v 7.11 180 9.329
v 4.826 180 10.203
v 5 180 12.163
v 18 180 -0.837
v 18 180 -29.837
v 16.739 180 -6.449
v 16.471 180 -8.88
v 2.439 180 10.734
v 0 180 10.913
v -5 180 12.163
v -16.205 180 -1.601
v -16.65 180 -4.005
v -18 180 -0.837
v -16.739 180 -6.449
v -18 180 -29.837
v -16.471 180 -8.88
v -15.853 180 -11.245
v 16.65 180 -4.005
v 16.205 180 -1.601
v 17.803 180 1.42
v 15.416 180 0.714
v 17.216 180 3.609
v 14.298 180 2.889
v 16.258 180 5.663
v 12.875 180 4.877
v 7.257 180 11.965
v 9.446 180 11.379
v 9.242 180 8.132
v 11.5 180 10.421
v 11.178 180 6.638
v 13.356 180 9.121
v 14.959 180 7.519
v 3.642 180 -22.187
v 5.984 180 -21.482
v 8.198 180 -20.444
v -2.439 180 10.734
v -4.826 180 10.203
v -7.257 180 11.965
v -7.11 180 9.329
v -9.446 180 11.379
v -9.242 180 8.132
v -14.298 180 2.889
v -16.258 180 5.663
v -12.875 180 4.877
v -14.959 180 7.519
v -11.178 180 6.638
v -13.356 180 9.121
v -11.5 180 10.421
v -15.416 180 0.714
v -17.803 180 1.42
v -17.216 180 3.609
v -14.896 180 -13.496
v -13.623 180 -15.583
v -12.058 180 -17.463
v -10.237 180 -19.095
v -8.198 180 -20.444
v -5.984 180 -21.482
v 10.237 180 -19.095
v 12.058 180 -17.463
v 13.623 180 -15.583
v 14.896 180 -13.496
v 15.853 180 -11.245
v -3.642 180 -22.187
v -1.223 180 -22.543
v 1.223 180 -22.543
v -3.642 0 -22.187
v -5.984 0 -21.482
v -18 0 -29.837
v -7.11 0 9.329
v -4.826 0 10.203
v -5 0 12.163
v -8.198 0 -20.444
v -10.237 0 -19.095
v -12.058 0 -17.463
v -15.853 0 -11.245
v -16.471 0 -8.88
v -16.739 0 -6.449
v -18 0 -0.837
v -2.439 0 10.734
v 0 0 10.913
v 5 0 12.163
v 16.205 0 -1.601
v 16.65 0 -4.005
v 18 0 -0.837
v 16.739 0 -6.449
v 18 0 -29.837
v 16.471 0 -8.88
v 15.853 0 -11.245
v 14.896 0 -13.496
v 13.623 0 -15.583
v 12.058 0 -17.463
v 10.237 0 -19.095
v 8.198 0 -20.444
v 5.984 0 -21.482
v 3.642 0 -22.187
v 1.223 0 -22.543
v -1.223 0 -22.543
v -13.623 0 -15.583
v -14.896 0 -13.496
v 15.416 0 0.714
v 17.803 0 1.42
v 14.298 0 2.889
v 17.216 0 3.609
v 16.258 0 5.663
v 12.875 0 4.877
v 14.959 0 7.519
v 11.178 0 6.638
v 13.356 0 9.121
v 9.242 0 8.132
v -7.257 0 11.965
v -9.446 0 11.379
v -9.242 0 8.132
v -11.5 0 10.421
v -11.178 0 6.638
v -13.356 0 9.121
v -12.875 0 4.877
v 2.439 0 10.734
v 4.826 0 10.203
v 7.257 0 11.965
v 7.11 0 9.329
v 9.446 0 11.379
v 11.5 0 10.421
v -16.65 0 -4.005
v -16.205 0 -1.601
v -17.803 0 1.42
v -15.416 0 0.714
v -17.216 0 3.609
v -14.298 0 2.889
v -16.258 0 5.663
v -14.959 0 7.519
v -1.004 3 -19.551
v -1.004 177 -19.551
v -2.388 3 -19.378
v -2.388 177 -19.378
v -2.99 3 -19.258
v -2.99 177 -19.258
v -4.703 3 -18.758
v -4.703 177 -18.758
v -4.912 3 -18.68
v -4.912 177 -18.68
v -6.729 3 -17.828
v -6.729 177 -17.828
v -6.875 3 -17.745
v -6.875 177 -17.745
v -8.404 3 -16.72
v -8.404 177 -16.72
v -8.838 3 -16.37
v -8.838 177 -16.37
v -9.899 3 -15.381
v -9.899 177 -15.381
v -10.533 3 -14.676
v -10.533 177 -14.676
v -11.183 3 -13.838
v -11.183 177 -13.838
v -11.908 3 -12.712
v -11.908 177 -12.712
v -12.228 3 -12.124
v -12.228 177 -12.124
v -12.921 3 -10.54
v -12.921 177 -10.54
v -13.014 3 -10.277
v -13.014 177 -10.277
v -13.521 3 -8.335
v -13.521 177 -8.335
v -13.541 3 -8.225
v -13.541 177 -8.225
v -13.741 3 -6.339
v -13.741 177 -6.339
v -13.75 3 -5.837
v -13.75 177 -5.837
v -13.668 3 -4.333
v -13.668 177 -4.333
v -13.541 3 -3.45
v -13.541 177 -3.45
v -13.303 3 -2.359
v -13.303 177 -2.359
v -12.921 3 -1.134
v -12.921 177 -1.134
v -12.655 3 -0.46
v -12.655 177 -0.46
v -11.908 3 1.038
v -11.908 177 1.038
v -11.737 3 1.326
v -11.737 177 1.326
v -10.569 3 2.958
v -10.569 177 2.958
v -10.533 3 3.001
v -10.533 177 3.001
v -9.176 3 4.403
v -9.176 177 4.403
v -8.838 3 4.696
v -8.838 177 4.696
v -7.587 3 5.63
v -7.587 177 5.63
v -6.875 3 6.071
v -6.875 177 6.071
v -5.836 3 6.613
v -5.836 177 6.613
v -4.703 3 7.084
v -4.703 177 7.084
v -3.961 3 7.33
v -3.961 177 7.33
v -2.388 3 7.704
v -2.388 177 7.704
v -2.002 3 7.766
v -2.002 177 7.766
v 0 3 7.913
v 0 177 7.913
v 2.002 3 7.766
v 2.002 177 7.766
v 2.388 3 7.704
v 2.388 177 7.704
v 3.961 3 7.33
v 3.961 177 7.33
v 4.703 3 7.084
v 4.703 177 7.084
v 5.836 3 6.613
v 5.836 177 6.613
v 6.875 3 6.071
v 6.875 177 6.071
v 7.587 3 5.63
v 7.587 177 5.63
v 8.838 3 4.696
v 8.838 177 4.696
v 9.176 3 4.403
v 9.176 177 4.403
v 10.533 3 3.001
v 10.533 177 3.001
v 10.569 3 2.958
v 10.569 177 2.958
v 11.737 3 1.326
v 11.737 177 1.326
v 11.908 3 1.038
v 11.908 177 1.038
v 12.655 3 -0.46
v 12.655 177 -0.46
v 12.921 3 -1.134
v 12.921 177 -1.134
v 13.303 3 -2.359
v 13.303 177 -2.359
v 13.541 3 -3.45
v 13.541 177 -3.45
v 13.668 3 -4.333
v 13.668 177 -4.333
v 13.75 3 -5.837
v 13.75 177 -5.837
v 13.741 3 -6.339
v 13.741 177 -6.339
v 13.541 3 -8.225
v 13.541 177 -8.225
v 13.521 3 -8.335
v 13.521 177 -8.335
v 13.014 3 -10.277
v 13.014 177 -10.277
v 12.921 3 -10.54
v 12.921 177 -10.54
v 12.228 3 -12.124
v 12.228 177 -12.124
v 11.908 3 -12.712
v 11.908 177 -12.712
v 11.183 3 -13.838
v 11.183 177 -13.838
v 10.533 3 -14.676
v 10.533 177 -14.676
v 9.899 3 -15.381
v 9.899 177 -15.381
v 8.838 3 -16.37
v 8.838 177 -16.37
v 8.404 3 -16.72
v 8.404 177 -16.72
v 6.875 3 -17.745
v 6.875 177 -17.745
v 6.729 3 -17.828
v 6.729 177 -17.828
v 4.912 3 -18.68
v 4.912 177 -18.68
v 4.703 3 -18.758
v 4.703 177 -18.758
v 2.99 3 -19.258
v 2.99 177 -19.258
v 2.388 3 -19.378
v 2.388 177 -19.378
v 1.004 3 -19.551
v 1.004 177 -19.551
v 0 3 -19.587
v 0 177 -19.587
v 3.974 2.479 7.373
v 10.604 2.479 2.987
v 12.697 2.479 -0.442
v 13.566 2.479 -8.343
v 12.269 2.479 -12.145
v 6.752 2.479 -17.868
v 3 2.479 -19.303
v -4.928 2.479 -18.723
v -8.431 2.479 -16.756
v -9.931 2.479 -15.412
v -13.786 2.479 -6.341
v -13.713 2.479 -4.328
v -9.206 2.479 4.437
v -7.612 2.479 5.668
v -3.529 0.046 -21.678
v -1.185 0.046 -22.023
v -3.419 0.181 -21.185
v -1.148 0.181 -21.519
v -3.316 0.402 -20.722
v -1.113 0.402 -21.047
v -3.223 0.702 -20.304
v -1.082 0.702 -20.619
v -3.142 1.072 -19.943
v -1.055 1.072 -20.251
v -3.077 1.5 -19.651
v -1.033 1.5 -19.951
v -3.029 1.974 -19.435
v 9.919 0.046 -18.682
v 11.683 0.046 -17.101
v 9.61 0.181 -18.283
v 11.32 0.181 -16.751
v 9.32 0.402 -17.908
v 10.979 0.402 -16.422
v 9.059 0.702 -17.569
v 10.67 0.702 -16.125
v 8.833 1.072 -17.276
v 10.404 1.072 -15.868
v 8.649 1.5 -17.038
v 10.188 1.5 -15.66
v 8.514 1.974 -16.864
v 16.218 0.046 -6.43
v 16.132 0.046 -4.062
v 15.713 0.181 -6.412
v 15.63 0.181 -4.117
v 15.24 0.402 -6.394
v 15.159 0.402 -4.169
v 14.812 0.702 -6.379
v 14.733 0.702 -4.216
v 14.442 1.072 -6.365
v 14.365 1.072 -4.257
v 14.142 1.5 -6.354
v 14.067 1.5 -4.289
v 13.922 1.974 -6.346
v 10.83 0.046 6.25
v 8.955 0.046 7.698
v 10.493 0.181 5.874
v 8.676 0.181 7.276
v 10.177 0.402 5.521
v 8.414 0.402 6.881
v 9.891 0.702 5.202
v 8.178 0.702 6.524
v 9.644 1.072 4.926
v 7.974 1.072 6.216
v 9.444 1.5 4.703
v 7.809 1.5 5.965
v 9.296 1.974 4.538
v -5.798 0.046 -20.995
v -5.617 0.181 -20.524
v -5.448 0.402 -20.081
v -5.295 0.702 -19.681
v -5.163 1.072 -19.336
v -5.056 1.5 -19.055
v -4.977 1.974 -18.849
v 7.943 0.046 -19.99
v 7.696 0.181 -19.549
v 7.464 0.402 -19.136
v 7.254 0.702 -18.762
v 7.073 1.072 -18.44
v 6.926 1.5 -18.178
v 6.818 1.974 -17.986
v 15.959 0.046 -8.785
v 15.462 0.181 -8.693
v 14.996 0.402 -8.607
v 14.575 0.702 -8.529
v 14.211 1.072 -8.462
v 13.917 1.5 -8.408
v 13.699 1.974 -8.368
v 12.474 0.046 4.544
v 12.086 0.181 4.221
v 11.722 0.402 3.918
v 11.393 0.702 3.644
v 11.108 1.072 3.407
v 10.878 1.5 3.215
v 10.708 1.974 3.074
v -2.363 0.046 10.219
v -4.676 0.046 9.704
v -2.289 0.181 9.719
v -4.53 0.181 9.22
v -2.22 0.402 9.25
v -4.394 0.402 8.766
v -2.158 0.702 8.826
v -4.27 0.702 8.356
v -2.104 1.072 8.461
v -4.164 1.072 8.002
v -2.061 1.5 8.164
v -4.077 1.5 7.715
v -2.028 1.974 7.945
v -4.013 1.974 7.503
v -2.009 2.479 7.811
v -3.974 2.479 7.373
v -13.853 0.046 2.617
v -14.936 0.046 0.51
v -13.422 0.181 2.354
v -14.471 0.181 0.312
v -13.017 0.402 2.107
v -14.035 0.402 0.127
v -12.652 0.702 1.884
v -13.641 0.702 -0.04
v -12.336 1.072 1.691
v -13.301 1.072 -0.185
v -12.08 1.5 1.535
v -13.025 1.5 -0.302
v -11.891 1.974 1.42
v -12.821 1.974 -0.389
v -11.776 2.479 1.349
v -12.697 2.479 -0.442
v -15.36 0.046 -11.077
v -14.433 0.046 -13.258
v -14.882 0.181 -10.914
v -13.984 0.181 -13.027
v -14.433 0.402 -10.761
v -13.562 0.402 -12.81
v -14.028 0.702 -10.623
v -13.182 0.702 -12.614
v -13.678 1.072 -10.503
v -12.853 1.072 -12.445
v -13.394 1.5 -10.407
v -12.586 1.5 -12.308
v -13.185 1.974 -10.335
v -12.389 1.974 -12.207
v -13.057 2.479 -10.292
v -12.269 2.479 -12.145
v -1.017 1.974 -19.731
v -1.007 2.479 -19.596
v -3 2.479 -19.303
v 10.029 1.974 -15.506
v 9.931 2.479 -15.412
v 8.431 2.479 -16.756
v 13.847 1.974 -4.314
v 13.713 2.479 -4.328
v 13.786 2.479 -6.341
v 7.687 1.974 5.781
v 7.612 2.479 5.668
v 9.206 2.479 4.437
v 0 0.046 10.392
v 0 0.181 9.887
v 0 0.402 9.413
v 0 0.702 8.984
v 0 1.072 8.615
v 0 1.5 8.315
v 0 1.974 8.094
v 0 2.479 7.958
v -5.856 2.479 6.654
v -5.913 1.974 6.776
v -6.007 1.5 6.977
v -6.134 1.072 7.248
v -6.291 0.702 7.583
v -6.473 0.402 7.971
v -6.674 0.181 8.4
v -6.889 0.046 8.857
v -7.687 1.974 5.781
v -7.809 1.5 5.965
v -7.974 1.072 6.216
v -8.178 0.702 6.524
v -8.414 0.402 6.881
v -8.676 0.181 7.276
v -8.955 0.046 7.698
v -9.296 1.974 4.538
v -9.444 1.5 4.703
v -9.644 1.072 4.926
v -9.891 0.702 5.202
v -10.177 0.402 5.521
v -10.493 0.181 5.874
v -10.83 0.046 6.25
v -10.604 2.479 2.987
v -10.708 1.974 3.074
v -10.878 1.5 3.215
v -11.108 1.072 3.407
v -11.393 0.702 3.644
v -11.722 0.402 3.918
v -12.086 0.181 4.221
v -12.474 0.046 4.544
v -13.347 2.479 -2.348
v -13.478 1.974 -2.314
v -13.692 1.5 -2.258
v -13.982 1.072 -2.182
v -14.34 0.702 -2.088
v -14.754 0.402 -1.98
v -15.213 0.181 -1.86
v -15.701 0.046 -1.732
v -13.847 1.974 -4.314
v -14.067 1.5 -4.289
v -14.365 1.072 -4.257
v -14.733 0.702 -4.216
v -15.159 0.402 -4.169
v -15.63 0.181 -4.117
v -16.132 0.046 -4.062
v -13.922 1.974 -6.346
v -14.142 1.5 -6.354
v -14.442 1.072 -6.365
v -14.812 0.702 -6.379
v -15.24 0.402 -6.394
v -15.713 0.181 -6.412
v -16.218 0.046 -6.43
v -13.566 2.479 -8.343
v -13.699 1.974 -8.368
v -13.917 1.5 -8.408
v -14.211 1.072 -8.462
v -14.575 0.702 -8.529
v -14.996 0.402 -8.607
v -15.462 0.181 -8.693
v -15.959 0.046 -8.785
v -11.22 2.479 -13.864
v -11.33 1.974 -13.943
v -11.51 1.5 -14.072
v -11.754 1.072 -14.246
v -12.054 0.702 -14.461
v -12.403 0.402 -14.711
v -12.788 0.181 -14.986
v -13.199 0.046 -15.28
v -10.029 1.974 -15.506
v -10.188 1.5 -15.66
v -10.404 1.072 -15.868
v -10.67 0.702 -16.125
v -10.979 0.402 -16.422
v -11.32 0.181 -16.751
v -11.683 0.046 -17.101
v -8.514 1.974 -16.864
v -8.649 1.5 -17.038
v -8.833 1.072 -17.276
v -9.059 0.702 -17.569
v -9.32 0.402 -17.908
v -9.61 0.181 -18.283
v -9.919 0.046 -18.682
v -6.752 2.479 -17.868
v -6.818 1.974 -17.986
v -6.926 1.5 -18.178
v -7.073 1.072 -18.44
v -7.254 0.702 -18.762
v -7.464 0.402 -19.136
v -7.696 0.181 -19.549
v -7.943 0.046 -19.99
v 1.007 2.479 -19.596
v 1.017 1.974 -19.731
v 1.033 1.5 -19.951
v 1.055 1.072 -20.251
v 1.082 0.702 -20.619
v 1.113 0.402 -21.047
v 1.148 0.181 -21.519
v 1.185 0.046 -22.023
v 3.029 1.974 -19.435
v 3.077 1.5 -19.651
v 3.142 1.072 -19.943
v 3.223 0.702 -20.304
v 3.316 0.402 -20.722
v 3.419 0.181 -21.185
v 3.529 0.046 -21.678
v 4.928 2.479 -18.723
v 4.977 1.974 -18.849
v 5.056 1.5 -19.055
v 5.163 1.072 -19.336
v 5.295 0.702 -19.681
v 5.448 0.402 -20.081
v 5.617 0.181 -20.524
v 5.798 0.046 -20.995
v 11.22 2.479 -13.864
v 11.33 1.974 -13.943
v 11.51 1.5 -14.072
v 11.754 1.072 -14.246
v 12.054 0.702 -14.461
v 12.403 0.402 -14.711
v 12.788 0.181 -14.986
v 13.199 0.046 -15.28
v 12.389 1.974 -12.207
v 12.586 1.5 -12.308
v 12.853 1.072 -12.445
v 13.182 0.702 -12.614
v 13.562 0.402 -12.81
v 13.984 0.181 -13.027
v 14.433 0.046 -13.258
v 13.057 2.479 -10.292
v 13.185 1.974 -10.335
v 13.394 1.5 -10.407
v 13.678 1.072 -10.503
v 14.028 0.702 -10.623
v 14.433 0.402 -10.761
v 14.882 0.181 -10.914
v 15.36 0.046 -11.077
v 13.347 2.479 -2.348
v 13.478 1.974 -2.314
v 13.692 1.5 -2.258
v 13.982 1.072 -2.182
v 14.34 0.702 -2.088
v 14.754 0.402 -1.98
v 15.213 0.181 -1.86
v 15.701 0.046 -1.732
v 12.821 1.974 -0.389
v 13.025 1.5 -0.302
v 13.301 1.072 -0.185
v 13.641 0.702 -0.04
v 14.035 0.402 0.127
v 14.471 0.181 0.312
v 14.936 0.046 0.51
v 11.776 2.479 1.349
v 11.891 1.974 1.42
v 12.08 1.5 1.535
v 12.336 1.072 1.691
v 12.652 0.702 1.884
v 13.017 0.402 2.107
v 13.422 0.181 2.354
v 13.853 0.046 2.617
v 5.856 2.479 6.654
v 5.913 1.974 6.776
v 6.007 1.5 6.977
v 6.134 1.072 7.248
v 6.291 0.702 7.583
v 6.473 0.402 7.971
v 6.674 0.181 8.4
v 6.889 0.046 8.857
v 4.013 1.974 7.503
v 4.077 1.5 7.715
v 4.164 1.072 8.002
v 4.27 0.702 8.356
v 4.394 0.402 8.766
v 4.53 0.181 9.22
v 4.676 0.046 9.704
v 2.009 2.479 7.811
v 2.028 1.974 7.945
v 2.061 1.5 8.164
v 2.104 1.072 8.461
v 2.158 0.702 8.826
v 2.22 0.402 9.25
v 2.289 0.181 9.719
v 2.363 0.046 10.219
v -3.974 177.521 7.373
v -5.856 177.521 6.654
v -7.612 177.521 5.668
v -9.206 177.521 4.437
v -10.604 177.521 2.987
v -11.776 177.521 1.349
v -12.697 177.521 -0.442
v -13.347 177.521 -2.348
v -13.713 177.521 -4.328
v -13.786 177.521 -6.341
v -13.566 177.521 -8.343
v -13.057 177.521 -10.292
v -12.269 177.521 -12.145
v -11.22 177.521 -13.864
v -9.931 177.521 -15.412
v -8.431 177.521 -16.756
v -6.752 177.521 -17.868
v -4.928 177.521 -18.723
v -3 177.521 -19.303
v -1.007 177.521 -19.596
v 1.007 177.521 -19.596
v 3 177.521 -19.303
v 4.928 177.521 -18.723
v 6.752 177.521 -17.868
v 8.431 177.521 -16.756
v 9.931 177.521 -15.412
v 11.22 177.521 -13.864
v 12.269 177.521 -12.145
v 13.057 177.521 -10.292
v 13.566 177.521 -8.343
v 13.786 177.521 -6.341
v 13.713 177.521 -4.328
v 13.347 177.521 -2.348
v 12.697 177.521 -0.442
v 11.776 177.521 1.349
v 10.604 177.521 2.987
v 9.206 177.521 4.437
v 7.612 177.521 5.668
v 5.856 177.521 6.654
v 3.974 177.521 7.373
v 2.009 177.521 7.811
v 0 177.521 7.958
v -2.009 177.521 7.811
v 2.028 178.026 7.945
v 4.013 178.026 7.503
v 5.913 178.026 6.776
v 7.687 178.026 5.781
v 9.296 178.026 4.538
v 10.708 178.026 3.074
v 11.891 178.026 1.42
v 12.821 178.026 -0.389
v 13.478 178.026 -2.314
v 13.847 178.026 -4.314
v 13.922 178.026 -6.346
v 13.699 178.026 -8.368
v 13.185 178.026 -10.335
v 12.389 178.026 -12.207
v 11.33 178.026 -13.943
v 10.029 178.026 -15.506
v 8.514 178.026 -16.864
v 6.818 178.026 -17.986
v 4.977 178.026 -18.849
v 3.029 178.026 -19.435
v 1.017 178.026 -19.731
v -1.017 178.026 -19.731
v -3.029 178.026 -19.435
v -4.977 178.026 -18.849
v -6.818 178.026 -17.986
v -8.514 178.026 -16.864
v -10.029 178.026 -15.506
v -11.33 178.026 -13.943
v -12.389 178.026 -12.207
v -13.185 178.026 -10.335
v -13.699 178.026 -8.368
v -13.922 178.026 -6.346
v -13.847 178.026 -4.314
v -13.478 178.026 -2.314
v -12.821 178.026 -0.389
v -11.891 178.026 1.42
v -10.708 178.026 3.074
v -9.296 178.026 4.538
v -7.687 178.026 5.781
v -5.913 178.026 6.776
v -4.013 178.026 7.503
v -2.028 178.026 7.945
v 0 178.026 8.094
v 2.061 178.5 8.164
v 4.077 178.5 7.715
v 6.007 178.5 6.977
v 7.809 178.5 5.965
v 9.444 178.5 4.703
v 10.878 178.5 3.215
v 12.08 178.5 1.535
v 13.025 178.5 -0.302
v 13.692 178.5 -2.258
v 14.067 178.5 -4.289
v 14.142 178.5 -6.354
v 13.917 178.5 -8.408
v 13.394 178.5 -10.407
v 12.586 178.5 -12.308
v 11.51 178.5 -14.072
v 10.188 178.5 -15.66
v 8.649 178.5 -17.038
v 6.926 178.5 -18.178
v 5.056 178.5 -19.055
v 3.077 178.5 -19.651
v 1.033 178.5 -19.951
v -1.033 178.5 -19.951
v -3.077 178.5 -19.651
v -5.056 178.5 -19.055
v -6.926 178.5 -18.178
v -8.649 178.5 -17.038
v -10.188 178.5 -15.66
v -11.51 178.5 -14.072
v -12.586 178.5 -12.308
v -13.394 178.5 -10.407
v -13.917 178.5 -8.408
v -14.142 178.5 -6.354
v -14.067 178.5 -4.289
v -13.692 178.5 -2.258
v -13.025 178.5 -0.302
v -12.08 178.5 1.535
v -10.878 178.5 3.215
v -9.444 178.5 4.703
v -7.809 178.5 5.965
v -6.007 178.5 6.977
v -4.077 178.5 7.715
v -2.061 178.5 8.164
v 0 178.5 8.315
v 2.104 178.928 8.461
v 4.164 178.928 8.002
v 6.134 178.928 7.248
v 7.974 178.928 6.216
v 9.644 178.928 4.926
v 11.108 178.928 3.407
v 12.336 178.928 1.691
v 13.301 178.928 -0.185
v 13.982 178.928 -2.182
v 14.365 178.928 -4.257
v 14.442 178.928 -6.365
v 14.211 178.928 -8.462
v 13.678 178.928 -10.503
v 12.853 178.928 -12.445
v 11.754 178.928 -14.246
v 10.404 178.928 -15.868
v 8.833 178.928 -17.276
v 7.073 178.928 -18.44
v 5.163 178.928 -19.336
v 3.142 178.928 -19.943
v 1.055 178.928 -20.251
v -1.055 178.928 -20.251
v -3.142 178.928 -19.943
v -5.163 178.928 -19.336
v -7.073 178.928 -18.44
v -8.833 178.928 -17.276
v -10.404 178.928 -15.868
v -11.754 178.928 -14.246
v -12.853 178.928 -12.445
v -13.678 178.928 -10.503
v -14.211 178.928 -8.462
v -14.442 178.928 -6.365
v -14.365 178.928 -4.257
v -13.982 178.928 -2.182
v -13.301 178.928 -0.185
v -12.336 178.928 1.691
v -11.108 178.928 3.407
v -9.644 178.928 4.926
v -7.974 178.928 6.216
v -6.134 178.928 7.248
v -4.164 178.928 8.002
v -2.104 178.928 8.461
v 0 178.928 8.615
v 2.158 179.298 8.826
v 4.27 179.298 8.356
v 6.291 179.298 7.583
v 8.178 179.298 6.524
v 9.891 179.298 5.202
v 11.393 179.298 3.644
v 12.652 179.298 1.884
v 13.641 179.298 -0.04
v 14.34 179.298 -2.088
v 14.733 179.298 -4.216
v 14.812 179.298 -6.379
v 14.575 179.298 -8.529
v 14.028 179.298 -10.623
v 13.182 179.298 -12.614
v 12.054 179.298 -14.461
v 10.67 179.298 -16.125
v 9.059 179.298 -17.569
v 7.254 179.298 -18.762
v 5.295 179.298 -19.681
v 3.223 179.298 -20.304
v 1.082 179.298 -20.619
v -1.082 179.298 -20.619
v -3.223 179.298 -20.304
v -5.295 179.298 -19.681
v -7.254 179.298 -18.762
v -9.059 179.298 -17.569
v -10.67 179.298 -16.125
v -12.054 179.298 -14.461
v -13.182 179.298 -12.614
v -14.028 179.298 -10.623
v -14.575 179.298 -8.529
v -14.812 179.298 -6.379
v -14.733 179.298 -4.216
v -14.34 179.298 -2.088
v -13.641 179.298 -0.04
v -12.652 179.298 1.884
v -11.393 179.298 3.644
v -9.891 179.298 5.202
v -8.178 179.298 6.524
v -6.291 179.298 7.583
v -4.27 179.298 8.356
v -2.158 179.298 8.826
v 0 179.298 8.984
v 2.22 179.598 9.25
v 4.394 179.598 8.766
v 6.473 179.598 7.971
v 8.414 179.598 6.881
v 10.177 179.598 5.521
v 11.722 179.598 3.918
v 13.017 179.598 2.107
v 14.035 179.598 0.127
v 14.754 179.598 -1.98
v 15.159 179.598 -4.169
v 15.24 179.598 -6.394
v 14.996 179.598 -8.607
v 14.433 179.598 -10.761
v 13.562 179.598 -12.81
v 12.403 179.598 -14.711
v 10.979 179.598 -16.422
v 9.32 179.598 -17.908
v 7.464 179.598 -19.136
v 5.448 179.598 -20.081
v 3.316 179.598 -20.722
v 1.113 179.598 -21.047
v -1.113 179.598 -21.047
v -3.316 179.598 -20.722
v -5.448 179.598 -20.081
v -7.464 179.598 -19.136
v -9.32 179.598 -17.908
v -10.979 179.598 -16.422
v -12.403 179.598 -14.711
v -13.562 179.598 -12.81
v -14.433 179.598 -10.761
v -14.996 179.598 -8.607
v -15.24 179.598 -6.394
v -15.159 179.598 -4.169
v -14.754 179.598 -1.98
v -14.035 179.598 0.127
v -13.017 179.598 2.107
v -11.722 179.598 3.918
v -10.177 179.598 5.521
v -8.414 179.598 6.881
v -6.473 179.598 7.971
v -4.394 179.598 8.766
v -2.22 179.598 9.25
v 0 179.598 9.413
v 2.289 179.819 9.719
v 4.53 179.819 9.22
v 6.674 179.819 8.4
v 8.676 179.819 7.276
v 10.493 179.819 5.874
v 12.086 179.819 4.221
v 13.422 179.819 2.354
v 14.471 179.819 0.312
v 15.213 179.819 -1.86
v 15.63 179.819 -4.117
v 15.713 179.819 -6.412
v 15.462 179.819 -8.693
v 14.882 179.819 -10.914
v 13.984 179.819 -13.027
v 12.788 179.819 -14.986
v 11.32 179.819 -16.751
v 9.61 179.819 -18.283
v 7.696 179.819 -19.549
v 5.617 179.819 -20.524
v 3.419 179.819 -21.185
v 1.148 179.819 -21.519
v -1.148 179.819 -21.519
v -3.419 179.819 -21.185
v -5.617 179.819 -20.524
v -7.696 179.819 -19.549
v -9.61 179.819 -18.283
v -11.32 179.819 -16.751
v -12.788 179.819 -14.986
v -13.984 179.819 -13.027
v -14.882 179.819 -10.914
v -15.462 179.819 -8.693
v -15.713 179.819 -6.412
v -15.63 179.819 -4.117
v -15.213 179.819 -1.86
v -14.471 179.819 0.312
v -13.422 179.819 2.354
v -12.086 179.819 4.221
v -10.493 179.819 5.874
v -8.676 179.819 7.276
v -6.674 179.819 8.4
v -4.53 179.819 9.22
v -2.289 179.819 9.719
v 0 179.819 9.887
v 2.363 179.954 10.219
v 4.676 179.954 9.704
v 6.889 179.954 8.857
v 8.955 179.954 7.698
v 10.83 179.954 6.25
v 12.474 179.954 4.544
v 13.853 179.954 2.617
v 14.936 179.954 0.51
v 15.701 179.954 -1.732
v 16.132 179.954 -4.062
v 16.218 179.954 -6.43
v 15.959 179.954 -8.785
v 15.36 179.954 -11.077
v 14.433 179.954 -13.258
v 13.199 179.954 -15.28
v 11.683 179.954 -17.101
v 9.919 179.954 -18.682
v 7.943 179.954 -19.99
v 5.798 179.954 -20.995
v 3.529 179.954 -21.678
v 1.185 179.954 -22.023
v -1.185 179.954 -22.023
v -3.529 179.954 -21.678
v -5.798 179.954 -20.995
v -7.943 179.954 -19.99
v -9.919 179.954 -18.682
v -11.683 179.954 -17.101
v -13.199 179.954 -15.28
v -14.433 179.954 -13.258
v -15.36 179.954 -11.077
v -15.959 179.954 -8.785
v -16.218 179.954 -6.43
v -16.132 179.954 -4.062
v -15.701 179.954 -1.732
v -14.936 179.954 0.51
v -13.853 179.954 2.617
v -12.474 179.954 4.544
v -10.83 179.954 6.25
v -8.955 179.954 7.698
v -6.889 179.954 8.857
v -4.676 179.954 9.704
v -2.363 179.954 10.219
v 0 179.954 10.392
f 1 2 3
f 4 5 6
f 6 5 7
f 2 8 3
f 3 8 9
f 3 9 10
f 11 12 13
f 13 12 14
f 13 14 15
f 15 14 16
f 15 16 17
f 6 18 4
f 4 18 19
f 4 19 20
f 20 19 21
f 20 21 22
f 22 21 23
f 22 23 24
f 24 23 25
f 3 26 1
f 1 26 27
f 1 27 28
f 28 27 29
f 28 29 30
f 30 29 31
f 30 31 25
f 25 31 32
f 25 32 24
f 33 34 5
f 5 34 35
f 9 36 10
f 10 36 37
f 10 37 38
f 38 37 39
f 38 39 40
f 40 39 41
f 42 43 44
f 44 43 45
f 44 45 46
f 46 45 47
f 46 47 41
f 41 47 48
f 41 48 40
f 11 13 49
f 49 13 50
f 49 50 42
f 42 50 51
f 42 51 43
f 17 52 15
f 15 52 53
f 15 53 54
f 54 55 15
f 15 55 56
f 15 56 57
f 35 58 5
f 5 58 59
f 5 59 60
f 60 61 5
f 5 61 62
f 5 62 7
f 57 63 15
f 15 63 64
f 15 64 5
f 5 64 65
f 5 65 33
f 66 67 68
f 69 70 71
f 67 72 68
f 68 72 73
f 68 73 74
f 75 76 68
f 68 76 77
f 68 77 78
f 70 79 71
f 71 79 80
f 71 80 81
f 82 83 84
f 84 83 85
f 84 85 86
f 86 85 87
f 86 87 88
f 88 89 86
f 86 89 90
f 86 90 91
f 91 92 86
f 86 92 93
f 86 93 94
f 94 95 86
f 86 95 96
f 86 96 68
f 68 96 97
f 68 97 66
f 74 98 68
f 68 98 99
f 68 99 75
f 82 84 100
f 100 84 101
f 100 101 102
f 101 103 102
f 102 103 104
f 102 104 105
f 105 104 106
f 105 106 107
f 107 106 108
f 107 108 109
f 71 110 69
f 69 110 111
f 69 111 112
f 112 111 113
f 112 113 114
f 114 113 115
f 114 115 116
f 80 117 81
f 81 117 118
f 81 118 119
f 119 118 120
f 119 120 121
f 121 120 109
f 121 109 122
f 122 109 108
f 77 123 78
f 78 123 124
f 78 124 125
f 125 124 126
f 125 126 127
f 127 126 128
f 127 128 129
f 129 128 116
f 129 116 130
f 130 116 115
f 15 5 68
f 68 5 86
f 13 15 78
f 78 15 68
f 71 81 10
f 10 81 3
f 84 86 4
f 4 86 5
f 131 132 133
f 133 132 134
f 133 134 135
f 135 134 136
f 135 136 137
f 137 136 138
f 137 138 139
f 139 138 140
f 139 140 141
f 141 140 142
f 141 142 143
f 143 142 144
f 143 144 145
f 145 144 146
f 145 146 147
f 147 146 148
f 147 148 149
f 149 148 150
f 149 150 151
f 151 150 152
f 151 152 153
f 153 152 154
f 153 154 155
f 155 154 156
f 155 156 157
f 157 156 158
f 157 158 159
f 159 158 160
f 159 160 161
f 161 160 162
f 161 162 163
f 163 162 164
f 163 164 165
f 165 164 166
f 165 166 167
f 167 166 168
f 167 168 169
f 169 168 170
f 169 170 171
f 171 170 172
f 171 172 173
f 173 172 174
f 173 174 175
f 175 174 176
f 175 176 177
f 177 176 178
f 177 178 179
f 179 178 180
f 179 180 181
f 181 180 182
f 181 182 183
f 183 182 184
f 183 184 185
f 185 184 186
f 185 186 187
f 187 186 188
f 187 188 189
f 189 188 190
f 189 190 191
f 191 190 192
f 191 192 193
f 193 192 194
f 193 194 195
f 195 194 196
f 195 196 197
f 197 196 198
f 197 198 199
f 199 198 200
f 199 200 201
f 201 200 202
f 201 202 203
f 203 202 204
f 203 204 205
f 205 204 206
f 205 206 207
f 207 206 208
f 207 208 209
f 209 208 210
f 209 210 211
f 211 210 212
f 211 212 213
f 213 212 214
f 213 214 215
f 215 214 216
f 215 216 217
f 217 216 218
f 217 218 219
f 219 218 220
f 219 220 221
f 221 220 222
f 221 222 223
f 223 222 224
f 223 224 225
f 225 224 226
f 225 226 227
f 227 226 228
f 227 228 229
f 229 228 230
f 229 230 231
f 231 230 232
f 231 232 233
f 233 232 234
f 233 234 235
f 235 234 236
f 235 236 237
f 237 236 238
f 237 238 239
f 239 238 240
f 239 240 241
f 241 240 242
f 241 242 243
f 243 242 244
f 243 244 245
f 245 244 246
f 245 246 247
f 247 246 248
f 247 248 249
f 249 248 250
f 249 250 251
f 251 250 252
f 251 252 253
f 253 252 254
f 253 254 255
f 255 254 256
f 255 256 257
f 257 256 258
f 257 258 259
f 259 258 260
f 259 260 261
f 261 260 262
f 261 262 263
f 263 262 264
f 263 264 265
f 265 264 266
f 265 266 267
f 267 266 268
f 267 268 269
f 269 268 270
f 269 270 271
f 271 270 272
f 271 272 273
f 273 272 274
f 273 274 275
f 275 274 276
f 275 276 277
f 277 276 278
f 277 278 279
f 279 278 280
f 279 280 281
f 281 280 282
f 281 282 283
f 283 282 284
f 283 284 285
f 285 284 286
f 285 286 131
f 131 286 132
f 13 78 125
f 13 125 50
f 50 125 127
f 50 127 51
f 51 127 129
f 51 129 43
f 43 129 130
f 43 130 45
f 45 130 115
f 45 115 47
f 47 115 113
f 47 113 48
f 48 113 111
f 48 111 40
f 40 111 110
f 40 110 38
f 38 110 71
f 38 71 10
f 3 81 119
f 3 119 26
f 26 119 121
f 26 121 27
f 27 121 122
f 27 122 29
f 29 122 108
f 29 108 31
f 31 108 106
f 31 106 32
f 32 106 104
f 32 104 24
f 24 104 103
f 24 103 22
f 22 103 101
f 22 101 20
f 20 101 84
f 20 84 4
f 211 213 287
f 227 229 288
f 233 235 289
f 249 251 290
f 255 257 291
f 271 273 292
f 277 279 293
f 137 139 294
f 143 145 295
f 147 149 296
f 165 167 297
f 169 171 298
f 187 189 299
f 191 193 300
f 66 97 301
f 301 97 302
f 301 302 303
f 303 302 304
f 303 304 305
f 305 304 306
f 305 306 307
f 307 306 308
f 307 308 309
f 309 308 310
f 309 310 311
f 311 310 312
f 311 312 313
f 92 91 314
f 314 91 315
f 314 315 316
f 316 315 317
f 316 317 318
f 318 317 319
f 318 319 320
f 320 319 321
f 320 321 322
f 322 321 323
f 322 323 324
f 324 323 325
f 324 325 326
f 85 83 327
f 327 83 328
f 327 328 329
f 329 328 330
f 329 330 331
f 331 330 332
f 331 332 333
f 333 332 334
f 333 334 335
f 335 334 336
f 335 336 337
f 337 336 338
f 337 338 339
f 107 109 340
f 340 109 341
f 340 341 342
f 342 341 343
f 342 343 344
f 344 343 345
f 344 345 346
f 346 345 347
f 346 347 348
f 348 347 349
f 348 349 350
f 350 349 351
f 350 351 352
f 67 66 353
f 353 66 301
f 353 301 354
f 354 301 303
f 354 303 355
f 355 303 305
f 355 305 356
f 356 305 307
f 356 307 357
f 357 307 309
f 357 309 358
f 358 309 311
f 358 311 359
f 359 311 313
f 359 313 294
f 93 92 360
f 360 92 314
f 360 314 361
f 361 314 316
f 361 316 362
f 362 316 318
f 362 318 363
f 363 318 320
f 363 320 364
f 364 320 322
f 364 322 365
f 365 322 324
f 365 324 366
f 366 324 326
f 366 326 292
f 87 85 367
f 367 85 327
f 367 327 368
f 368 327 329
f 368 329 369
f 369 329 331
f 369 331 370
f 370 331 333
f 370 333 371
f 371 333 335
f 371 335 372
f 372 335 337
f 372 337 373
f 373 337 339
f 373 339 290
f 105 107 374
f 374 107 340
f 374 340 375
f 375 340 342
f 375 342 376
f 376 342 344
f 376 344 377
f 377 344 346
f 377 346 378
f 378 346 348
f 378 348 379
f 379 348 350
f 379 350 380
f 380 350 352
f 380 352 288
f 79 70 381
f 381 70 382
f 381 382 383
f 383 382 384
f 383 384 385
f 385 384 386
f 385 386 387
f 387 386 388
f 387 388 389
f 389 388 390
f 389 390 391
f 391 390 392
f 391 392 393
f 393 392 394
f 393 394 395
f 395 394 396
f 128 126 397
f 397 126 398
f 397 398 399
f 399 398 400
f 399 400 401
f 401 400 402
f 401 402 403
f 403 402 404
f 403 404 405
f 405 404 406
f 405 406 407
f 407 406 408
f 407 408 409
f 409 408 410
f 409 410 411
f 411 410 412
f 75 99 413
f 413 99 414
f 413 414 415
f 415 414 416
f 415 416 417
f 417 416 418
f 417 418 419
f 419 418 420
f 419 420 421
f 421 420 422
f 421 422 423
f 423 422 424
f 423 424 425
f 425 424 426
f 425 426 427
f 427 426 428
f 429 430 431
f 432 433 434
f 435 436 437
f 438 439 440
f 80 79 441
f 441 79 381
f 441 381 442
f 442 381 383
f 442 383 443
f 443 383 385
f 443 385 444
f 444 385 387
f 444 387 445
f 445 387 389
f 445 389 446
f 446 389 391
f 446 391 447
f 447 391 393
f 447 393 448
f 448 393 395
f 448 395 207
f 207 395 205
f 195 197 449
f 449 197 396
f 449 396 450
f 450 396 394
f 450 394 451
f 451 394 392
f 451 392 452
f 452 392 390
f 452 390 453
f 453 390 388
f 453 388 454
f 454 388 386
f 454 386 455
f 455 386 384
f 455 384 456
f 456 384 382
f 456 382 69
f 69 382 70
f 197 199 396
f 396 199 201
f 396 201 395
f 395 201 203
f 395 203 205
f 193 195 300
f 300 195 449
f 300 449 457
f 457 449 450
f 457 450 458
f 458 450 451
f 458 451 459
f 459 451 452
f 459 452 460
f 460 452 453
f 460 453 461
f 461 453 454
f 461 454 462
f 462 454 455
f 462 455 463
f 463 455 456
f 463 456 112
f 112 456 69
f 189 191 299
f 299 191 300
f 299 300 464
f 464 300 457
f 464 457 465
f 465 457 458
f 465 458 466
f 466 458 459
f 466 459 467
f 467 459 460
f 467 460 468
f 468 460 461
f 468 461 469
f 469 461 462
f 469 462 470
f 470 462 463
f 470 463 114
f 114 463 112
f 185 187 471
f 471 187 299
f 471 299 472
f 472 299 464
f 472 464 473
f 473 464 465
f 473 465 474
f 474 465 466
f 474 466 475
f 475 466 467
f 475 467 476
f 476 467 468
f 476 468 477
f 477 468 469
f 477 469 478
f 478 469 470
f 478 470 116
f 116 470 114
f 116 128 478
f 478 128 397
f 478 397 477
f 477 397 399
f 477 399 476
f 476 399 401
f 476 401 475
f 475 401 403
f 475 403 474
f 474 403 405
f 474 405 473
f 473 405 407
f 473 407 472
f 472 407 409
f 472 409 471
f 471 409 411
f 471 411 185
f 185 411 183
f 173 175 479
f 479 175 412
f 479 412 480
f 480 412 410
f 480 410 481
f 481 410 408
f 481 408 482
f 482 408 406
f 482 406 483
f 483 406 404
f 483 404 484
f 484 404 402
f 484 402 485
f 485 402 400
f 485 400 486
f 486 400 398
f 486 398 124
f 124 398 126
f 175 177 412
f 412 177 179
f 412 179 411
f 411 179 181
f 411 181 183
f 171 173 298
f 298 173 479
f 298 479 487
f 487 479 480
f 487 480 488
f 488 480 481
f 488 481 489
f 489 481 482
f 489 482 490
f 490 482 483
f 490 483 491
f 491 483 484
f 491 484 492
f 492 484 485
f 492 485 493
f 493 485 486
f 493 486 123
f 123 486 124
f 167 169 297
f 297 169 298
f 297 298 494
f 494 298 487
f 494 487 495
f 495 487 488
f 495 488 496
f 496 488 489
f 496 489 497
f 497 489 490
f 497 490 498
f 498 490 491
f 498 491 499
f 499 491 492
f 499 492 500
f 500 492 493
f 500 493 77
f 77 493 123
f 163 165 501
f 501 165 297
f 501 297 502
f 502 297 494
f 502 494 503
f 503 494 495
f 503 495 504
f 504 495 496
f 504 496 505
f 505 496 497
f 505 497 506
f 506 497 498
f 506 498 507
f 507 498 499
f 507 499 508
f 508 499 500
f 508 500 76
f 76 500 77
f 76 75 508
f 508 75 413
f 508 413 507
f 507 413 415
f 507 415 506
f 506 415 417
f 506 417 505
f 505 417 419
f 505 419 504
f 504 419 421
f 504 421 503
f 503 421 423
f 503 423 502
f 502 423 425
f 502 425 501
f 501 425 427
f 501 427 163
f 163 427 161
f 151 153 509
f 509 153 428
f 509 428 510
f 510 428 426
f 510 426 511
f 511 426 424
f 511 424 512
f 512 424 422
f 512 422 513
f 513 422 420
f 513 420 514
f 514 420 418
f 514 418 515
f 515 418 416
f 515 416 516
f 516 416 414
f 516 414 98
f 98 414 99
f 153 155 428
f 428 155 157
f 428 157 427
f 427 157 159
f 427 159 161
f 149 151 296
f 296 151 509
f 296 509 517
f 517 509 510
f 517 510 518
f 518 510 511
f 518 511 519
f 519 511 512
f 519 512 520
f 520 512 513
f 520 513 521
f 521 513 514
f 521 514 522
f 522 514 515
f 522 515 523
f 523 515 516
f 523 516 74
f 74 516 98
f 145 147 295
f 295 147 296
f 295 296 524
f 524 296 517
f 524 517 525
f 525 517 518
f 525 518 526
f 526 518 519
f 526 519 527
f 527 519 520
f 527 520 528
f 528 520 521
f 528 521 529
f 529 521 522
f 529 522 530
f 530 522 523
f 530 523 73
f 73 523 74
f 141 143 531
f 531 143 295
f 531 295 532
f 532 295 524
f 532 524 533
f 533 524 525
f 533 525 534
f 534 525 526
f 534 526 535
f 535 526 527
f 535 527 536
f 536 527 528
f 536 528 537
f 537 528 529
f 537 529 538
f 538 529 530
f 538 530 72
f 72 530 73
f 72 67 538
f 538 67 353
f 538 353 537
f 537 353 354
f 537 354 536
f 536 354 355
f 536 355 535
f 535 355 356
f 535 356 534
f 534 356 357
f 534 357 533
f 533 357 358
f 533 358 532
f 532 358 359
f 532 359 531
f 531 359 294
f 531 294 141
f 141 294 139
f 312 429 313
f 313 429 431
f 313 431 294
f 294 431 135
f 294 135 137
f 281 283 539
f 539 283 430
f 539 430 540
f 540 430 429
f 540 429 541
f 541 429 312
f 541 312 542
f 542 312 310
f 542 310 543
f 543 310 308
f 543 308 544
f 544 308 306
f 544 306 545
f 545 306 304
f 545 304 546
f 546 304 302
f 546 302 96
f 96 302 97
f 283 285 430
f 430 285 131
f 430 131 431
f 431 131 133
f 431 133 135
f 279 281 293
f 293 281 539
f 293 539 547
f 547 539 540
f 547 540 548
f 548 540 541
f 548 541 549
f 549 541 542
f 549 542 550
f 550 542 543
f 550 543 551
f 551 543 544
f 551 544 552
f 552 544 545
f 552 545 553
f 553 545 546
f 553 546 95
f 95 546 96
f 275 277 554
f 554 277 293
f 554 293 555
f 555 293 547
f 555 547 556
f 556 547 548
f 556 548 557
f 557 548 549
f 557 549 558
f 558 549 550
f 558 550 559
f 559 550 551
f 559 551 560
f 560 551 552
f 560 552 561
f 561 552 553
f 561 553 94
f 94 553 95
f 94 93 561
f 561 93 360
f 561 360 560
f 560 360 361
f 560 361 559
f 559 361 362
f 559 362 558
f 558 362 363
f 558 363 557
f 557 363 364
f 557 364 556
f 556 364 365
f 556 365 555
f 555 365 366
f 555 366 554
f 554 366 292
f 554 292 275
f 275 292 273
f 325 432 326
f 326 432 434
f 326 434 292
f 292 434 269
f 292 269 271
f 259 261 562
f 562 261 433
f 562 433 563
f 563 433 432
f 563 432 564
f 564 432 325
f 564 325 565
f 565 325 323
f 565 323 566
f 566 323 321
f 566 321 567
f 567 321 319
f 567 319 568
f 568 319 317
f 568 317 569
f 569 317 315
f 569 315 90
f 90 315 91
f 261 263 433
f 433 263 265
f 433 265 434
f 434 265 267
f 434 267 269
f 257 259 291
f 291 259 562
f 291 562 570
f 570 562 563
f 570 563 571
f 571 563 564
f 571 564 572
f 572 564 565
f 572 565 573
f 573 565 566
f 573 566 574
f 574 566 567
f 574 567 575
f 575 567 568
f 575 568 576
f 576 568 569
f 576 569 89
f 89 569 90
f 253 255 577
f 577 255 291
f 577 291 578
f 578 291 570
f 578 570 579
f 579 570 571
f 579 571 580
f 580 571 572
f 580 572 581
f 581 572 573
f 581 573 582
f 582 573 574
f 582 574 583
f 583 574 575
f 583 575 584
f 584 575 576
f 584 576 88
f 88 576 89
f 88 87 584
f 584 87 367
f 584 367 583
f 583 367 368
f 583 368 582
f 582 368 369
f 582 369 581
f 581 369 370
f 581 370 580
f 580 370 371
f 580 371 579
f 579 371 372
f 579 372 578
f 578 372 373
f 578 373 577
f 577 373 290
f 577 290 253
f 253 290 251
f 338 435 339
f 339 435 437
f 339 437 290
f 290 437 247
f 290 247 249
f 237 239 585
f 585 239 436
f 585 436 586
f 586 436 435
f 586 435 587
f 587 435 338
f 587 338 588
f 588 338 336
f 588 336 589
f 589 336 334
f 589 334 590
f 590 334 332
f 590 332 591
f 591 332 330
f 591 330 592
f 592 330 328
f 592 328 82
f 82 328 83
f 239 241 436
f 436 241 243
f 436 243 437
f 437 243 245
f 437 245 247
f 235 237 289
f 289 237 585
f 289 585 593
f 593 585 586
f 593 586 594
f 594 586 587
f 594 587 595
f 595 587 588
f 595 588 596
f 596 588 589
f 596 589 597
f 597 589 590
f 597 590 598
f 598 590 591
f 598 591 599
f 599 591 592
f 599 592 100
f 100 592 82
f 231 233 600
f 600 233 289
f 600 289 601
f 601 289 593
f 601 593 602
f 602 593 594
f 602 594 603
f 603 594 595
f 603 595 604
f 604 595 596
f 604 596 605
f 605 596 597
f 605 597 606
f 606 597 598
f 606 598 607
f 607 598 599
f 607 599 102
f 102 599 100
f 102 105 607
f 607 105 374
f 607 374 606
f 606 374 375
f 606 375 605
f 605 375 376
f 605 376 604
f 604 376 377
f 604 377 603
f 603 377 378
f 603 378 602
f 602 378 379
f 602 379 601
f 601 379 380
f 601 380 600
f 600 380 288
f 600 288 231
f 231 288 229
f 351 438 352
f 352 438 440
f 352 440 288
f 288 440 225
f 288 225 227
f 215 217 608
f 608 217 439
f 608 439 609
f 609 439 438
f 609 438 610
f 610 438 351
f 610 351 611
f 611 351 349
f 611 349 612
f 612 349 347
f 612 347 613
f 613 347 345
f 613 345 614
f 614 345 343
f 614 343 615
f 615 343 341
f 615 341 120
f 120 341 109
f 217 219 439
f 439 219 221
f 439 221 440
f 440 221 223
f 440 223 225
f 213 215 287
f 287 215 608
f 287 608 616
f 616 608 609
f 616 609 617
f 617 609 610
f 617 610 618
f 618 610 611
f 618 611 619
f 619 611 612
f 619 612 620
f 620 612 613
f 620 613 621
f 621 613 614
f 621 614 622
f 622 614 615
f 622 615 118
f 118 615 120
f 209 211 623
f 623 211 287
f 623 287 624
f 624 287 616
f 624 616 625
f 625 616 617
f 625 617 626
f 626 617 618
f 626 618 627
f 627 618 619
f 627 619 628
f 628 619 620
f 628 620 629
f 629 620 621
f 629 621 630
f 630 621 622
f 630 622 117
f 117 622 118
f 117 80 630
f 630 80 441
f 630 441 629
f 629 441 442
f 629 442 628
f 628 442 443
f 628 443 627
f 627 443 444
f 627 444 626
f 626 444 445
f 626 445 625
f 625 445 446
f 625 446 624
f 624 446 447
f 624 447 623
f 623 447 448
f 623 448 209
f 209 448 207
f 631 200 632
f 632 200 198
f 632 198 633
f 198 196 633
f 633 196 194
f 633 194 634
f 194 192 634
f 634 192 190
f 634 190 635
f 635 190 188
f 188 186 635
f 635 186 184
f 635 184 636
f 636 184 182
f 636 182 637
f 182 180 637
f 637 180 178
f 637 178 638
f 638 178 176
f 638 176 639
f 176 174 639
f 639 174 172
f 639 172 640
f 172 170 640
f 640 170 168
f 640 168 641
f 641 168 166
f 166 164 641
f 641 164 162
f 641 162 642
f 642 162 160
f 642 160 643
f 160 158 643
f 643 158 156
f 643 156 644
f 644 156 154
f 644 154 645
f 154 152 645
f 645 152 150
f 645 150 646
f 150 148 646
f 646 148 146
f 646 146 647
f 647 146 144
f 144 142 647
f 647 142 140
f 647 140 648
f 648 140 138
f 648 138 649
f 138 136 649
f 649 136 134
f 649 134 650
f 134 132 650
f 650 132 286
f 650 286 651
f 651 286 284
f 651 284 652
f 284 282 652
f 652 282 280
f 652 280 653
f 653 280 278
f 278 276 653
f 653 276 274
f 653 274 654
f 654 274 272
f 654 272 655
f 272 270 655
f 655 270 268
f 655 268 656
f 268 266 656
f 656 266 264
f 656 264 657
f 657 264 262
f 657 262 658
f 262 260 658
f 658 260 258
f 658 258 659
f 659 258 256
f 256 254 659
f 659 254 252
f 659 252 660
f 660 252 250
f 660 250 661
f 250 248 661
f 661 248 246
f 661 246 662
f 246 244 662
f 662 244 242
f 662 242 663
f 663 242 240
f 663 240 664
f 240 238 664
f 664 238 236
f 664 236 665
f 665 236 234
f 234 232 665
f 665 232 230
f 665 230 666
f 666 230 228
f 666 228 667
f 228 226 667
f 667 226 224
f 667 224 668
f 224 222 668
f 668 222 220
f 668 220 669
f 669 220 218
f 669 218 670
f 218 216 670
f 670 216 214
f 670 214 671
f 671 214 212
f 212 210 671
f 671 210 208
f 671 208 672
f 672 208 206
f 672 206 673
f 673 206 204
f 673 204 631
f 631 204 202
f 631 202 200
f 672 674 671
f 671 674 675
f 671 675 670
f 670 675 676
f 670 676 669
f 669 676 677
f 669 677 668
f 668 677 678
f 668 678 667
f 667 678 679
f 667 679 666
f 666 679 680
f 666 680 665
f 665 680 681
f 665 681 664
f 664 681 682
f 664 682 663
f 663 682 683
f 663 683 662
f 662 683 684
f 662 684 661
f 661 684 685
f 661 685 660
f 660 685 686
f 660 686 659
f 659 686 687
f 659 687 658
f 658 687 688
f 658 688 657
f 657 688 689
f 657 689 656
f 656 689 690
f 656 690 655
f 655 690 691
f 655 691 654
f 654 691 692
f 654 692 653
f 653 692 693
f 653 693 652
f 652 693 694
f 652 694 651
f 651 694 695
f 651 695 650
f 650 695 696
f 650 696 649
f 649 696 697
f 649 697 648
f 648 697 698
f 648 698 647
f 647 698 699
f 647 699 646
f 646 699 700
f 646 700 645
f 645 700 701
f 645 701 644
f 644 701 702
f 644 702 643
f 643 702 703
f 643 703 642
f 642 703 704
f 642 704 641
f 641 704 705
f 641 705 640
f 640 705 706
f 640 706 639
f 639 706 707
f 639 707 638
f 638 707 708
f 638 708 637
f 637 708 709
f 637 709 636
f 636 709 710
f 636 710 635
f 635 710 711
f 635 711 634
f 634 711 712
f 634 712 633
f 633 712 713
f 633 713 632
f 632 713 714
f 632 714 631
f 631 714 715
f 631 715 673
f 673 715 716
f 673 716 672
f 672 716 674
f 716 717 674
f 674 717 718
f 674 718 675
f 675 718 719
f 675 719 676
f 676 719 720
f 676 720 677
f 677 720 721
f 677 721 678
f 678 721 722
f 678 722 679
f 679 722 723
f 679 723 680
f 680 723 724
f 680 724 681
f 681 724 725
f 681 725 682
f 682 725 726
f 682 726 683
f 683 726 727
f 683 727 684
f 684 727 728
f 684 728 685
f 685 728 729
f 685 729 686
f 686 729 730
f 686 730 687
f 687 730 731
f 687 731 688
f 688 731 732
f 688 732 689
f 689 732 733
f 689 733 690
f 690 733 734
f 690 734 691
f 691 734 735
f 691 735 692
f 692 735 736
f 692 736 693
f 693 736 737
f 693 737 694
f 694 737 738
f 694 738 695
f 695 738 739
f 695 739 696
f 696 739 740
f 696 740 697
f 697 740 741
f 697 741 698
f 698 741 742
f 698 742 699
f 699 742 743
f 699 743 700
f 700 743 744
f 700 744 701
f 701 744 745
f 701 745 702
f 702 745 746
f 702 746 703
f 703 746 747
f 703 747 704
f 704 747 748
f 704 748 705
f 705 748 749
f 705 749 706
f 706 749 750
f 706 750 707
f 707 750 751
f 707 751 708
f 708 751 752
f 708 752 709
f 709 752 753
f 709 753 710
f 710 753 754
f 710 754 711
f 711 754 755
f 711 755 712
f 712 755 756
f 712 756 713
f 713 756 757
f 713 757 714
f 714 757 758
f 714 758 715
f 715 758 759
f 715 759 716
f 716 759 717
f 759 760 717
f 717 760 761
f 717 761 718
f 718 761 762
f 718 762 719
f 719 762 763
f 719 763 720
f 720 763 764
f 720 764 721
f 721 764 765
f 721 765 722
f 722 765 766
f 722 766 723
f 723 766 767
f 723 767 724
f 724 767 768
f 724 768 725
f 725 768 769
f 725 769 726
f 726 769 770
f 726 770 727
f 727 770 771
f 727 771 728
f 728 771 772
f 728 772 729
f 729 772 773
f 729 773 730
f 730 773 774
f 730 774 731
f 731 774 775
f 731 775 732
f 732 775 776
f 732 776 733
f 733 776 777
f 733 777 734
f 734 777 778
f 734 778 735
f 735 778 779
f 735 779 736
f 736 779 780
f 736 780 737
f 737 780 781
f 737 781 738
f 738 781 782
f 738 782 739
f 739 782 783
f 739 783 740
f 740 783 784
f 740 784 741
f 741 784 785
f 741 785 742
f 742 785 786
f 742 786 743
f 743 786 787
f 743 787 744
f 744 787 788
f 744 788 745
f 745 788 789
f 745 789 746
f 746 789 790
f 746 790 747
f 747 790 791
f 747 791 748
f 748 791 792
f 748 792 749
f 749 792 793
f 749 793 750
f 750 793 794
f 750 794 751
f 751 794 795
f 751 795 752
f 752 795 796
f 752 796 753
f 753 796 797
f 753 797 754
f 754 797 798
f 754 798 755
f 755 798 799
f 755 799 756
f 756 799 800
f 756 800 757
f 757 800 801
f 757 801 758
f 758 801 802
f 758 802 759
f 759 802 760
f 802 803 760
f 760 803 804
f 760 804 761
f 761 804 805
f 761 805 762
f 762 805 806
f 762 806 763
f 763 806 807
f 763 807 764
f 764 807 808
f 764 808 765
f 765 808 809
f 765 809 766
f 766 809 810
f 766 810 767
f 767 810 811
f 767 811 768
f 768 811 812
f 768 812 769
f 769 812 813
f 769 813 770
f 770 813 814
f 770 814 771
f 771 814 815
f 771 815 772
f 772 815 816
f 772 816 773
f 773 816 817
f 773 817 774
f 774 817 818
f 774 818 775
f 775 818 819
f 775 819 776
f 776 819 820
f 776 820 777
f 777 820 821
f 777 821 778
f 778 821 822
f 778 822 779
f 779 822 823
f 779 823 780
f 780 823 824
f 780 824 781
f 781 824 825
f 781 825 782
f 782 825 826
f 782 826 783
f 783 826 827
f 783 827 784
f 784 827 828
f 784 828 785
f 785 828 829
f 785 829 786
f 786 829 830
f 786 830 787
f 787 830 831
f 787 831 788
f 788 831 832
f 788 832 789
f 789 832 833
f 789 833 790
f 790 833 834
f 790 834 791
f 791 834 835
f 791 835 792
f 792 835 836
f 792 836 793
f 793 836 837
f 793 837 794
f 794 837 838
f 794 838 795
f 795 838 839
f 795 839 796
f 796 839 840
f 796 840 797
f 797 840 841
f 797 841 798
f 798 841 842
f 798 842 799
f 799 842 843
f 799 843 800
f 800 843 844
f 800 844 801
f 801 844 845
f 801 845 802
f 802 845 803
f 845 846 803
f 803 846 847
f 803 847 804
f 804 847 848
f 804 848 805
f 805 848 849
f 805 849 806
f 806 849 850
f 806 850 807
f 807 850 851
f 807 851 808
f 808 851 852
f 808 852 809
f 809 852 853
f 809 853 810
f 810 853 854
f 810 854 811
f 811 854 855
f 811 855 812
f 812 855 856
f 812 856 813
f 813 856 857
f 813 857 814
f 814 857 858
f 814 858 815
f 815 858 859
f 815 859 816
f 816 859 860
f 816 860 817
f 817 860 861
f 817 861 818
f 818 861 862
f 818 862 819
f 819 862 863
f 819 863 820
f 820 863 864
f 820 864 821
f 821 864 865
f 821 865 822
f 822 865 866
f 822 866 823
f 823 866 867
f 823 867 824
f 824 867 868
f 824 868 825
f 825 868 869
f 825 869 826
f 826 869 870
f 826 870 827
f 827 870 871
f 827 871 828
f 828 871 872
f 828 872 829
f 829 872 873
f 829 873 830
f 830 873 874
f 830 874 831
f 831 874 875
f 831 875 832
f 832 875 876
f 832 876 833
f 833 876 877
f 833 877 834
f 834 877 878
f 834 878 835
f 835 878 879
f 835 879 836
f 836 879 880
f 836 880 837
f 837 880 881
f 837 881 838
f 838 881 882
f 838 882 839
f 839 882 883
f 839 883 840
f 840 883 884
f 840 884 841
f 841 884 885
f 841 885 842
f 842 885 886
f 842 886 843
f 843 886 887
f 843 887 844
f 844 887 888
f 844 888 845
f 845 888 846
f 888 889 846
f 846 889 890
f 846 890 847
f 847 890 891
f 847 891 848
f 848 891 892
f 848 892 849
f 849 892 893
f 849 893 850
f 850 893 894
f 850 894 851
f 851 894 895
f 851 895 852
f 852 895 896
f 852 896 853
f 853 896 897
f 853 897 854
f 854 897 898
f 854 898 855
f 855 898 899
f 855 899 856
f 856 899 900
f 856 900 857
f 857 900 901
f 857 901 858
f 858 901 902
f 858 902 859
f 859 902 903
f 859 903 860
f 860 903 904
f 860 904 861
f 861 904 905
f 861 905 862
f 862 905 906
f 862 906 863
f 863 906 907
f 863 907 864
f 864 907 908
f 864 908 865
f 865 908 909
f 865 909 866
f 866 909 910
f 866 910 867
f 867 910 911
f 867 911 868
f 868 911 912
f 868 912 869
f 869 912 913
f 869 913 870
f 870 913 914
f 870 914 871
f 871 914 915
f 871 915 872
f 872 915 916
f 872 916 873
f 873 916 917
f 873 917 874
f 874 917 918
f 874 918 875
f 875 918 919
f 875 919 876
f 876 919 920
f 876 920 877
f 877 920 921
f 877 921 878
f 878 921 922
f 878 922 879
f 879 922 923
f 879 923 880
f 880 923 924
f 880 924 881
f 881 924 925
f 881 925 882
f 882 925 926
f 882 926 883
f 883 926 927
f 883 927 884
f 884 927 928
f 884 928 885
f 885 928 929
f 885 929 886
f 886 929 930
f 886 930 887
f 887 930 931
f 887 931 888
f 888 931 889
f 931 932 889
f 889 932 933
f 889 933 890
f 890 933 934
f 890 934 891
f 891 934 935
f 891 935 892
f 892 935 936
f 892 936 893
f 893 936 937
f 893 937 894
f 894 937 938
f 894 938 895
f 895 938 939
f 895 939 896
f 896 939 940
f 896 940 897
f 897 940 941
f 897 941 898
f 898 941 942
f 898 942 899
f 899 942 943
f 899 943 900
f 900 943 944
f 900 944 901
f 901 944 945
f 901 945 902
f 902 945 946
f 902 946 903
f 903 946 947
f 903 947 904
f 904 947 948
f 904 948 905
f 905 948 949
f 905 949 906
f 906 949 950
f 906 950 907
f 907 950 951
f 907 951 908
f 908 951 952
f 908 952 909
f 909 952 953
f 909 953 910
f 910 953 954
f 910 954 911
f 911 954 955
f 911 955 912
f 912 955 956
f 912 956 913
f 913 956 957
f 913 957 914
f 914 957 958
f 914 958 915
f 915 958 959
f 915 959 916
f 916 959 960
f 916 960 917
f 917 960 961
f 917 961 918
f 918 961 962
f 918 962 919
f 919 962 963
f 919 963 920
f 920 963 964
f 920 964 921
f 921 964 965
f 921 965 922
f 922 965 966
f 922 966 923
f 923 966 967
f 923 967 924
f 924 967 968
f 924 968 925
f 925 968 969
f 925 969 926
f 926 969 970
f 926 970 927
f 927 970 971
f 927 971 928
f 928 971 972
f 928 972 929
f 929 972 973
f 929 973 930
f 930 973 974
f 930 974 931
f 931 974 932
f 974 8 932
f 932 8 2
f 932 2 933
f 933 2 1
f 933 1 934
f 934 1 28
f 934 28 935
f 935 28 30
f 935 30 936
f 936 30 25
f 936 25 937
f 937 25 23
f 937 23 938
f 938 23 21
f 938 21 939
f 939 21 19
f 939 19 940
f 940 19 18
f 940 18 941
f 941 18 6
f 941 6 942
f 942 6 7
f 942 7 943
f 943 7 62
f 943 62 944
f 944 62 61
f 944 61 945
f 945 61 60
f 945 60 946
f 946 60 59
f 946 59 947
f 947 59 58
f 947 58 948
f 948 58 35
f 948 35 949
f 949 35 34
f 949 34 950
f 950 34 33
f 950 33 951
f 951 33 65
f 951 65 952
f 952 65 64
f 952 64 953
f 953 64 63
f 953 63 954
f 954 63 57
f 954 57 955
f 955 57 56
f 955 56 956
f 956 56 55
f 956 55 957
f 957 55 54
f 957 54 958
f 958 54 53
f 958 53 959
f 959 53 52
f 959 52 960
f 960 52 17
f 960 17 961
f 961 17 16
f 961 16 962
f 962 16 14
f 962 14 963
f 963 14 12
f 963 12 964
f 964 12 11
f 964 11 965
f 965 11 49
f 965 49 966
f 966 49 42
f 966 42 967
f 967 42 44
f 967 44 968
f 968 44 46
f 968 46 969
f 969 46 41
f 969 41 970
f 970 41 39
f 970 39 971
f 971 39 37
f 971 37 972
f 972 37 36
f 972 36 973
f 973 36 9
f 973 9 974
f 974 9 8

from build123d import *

# Parameters (mm, degrees)
SKETCH1_R           = 13.75
BOSS_EXTRUDE1_DEPTH = 180
FILLET1_R           = 13
FILLET2_R           = 3


with BuildPart() as part:
    # Sketch1 → Boss-Extrude1 (new body)
    with BuildSketch(Plane(origin=(0, 0, 0), x_dir=(1, 0, 0), z_dir=(0, 1, 0))):
        Polygon((0, 29.837240524), (-18, 29.837240524), (-18, -12.162759476), (18, -12.162759476), (18, 29.837240524), align=None)
        with Locations(Location((0, 5.837240524, 0), (0, 0, 90))):
            Circle(SKETCH1_R, mode=Mode.SUBTRACT)
    extrude(amount=BOSS_EXTRUDE1_DEPTH)

    # Fillet1
    fillet1_edges = [part.edges().sort_by_distance(p)[0] for p in [
        (18, 90, 12.162759476),
        (-18, 90, 12.162759476),
    ]]
    fillet(fillet1_edges, radius=FILLET1_R)

    # Fillet2
    fillet2_edges = [part.edges().sort_by_distance(p)[0] for p in [
        (0, 0, 7.912759476),
        (0, 180, 7.912759476),
    ]]
    fillet(fillet2_edges, radius=FILLET2_R)


solid = part.part
